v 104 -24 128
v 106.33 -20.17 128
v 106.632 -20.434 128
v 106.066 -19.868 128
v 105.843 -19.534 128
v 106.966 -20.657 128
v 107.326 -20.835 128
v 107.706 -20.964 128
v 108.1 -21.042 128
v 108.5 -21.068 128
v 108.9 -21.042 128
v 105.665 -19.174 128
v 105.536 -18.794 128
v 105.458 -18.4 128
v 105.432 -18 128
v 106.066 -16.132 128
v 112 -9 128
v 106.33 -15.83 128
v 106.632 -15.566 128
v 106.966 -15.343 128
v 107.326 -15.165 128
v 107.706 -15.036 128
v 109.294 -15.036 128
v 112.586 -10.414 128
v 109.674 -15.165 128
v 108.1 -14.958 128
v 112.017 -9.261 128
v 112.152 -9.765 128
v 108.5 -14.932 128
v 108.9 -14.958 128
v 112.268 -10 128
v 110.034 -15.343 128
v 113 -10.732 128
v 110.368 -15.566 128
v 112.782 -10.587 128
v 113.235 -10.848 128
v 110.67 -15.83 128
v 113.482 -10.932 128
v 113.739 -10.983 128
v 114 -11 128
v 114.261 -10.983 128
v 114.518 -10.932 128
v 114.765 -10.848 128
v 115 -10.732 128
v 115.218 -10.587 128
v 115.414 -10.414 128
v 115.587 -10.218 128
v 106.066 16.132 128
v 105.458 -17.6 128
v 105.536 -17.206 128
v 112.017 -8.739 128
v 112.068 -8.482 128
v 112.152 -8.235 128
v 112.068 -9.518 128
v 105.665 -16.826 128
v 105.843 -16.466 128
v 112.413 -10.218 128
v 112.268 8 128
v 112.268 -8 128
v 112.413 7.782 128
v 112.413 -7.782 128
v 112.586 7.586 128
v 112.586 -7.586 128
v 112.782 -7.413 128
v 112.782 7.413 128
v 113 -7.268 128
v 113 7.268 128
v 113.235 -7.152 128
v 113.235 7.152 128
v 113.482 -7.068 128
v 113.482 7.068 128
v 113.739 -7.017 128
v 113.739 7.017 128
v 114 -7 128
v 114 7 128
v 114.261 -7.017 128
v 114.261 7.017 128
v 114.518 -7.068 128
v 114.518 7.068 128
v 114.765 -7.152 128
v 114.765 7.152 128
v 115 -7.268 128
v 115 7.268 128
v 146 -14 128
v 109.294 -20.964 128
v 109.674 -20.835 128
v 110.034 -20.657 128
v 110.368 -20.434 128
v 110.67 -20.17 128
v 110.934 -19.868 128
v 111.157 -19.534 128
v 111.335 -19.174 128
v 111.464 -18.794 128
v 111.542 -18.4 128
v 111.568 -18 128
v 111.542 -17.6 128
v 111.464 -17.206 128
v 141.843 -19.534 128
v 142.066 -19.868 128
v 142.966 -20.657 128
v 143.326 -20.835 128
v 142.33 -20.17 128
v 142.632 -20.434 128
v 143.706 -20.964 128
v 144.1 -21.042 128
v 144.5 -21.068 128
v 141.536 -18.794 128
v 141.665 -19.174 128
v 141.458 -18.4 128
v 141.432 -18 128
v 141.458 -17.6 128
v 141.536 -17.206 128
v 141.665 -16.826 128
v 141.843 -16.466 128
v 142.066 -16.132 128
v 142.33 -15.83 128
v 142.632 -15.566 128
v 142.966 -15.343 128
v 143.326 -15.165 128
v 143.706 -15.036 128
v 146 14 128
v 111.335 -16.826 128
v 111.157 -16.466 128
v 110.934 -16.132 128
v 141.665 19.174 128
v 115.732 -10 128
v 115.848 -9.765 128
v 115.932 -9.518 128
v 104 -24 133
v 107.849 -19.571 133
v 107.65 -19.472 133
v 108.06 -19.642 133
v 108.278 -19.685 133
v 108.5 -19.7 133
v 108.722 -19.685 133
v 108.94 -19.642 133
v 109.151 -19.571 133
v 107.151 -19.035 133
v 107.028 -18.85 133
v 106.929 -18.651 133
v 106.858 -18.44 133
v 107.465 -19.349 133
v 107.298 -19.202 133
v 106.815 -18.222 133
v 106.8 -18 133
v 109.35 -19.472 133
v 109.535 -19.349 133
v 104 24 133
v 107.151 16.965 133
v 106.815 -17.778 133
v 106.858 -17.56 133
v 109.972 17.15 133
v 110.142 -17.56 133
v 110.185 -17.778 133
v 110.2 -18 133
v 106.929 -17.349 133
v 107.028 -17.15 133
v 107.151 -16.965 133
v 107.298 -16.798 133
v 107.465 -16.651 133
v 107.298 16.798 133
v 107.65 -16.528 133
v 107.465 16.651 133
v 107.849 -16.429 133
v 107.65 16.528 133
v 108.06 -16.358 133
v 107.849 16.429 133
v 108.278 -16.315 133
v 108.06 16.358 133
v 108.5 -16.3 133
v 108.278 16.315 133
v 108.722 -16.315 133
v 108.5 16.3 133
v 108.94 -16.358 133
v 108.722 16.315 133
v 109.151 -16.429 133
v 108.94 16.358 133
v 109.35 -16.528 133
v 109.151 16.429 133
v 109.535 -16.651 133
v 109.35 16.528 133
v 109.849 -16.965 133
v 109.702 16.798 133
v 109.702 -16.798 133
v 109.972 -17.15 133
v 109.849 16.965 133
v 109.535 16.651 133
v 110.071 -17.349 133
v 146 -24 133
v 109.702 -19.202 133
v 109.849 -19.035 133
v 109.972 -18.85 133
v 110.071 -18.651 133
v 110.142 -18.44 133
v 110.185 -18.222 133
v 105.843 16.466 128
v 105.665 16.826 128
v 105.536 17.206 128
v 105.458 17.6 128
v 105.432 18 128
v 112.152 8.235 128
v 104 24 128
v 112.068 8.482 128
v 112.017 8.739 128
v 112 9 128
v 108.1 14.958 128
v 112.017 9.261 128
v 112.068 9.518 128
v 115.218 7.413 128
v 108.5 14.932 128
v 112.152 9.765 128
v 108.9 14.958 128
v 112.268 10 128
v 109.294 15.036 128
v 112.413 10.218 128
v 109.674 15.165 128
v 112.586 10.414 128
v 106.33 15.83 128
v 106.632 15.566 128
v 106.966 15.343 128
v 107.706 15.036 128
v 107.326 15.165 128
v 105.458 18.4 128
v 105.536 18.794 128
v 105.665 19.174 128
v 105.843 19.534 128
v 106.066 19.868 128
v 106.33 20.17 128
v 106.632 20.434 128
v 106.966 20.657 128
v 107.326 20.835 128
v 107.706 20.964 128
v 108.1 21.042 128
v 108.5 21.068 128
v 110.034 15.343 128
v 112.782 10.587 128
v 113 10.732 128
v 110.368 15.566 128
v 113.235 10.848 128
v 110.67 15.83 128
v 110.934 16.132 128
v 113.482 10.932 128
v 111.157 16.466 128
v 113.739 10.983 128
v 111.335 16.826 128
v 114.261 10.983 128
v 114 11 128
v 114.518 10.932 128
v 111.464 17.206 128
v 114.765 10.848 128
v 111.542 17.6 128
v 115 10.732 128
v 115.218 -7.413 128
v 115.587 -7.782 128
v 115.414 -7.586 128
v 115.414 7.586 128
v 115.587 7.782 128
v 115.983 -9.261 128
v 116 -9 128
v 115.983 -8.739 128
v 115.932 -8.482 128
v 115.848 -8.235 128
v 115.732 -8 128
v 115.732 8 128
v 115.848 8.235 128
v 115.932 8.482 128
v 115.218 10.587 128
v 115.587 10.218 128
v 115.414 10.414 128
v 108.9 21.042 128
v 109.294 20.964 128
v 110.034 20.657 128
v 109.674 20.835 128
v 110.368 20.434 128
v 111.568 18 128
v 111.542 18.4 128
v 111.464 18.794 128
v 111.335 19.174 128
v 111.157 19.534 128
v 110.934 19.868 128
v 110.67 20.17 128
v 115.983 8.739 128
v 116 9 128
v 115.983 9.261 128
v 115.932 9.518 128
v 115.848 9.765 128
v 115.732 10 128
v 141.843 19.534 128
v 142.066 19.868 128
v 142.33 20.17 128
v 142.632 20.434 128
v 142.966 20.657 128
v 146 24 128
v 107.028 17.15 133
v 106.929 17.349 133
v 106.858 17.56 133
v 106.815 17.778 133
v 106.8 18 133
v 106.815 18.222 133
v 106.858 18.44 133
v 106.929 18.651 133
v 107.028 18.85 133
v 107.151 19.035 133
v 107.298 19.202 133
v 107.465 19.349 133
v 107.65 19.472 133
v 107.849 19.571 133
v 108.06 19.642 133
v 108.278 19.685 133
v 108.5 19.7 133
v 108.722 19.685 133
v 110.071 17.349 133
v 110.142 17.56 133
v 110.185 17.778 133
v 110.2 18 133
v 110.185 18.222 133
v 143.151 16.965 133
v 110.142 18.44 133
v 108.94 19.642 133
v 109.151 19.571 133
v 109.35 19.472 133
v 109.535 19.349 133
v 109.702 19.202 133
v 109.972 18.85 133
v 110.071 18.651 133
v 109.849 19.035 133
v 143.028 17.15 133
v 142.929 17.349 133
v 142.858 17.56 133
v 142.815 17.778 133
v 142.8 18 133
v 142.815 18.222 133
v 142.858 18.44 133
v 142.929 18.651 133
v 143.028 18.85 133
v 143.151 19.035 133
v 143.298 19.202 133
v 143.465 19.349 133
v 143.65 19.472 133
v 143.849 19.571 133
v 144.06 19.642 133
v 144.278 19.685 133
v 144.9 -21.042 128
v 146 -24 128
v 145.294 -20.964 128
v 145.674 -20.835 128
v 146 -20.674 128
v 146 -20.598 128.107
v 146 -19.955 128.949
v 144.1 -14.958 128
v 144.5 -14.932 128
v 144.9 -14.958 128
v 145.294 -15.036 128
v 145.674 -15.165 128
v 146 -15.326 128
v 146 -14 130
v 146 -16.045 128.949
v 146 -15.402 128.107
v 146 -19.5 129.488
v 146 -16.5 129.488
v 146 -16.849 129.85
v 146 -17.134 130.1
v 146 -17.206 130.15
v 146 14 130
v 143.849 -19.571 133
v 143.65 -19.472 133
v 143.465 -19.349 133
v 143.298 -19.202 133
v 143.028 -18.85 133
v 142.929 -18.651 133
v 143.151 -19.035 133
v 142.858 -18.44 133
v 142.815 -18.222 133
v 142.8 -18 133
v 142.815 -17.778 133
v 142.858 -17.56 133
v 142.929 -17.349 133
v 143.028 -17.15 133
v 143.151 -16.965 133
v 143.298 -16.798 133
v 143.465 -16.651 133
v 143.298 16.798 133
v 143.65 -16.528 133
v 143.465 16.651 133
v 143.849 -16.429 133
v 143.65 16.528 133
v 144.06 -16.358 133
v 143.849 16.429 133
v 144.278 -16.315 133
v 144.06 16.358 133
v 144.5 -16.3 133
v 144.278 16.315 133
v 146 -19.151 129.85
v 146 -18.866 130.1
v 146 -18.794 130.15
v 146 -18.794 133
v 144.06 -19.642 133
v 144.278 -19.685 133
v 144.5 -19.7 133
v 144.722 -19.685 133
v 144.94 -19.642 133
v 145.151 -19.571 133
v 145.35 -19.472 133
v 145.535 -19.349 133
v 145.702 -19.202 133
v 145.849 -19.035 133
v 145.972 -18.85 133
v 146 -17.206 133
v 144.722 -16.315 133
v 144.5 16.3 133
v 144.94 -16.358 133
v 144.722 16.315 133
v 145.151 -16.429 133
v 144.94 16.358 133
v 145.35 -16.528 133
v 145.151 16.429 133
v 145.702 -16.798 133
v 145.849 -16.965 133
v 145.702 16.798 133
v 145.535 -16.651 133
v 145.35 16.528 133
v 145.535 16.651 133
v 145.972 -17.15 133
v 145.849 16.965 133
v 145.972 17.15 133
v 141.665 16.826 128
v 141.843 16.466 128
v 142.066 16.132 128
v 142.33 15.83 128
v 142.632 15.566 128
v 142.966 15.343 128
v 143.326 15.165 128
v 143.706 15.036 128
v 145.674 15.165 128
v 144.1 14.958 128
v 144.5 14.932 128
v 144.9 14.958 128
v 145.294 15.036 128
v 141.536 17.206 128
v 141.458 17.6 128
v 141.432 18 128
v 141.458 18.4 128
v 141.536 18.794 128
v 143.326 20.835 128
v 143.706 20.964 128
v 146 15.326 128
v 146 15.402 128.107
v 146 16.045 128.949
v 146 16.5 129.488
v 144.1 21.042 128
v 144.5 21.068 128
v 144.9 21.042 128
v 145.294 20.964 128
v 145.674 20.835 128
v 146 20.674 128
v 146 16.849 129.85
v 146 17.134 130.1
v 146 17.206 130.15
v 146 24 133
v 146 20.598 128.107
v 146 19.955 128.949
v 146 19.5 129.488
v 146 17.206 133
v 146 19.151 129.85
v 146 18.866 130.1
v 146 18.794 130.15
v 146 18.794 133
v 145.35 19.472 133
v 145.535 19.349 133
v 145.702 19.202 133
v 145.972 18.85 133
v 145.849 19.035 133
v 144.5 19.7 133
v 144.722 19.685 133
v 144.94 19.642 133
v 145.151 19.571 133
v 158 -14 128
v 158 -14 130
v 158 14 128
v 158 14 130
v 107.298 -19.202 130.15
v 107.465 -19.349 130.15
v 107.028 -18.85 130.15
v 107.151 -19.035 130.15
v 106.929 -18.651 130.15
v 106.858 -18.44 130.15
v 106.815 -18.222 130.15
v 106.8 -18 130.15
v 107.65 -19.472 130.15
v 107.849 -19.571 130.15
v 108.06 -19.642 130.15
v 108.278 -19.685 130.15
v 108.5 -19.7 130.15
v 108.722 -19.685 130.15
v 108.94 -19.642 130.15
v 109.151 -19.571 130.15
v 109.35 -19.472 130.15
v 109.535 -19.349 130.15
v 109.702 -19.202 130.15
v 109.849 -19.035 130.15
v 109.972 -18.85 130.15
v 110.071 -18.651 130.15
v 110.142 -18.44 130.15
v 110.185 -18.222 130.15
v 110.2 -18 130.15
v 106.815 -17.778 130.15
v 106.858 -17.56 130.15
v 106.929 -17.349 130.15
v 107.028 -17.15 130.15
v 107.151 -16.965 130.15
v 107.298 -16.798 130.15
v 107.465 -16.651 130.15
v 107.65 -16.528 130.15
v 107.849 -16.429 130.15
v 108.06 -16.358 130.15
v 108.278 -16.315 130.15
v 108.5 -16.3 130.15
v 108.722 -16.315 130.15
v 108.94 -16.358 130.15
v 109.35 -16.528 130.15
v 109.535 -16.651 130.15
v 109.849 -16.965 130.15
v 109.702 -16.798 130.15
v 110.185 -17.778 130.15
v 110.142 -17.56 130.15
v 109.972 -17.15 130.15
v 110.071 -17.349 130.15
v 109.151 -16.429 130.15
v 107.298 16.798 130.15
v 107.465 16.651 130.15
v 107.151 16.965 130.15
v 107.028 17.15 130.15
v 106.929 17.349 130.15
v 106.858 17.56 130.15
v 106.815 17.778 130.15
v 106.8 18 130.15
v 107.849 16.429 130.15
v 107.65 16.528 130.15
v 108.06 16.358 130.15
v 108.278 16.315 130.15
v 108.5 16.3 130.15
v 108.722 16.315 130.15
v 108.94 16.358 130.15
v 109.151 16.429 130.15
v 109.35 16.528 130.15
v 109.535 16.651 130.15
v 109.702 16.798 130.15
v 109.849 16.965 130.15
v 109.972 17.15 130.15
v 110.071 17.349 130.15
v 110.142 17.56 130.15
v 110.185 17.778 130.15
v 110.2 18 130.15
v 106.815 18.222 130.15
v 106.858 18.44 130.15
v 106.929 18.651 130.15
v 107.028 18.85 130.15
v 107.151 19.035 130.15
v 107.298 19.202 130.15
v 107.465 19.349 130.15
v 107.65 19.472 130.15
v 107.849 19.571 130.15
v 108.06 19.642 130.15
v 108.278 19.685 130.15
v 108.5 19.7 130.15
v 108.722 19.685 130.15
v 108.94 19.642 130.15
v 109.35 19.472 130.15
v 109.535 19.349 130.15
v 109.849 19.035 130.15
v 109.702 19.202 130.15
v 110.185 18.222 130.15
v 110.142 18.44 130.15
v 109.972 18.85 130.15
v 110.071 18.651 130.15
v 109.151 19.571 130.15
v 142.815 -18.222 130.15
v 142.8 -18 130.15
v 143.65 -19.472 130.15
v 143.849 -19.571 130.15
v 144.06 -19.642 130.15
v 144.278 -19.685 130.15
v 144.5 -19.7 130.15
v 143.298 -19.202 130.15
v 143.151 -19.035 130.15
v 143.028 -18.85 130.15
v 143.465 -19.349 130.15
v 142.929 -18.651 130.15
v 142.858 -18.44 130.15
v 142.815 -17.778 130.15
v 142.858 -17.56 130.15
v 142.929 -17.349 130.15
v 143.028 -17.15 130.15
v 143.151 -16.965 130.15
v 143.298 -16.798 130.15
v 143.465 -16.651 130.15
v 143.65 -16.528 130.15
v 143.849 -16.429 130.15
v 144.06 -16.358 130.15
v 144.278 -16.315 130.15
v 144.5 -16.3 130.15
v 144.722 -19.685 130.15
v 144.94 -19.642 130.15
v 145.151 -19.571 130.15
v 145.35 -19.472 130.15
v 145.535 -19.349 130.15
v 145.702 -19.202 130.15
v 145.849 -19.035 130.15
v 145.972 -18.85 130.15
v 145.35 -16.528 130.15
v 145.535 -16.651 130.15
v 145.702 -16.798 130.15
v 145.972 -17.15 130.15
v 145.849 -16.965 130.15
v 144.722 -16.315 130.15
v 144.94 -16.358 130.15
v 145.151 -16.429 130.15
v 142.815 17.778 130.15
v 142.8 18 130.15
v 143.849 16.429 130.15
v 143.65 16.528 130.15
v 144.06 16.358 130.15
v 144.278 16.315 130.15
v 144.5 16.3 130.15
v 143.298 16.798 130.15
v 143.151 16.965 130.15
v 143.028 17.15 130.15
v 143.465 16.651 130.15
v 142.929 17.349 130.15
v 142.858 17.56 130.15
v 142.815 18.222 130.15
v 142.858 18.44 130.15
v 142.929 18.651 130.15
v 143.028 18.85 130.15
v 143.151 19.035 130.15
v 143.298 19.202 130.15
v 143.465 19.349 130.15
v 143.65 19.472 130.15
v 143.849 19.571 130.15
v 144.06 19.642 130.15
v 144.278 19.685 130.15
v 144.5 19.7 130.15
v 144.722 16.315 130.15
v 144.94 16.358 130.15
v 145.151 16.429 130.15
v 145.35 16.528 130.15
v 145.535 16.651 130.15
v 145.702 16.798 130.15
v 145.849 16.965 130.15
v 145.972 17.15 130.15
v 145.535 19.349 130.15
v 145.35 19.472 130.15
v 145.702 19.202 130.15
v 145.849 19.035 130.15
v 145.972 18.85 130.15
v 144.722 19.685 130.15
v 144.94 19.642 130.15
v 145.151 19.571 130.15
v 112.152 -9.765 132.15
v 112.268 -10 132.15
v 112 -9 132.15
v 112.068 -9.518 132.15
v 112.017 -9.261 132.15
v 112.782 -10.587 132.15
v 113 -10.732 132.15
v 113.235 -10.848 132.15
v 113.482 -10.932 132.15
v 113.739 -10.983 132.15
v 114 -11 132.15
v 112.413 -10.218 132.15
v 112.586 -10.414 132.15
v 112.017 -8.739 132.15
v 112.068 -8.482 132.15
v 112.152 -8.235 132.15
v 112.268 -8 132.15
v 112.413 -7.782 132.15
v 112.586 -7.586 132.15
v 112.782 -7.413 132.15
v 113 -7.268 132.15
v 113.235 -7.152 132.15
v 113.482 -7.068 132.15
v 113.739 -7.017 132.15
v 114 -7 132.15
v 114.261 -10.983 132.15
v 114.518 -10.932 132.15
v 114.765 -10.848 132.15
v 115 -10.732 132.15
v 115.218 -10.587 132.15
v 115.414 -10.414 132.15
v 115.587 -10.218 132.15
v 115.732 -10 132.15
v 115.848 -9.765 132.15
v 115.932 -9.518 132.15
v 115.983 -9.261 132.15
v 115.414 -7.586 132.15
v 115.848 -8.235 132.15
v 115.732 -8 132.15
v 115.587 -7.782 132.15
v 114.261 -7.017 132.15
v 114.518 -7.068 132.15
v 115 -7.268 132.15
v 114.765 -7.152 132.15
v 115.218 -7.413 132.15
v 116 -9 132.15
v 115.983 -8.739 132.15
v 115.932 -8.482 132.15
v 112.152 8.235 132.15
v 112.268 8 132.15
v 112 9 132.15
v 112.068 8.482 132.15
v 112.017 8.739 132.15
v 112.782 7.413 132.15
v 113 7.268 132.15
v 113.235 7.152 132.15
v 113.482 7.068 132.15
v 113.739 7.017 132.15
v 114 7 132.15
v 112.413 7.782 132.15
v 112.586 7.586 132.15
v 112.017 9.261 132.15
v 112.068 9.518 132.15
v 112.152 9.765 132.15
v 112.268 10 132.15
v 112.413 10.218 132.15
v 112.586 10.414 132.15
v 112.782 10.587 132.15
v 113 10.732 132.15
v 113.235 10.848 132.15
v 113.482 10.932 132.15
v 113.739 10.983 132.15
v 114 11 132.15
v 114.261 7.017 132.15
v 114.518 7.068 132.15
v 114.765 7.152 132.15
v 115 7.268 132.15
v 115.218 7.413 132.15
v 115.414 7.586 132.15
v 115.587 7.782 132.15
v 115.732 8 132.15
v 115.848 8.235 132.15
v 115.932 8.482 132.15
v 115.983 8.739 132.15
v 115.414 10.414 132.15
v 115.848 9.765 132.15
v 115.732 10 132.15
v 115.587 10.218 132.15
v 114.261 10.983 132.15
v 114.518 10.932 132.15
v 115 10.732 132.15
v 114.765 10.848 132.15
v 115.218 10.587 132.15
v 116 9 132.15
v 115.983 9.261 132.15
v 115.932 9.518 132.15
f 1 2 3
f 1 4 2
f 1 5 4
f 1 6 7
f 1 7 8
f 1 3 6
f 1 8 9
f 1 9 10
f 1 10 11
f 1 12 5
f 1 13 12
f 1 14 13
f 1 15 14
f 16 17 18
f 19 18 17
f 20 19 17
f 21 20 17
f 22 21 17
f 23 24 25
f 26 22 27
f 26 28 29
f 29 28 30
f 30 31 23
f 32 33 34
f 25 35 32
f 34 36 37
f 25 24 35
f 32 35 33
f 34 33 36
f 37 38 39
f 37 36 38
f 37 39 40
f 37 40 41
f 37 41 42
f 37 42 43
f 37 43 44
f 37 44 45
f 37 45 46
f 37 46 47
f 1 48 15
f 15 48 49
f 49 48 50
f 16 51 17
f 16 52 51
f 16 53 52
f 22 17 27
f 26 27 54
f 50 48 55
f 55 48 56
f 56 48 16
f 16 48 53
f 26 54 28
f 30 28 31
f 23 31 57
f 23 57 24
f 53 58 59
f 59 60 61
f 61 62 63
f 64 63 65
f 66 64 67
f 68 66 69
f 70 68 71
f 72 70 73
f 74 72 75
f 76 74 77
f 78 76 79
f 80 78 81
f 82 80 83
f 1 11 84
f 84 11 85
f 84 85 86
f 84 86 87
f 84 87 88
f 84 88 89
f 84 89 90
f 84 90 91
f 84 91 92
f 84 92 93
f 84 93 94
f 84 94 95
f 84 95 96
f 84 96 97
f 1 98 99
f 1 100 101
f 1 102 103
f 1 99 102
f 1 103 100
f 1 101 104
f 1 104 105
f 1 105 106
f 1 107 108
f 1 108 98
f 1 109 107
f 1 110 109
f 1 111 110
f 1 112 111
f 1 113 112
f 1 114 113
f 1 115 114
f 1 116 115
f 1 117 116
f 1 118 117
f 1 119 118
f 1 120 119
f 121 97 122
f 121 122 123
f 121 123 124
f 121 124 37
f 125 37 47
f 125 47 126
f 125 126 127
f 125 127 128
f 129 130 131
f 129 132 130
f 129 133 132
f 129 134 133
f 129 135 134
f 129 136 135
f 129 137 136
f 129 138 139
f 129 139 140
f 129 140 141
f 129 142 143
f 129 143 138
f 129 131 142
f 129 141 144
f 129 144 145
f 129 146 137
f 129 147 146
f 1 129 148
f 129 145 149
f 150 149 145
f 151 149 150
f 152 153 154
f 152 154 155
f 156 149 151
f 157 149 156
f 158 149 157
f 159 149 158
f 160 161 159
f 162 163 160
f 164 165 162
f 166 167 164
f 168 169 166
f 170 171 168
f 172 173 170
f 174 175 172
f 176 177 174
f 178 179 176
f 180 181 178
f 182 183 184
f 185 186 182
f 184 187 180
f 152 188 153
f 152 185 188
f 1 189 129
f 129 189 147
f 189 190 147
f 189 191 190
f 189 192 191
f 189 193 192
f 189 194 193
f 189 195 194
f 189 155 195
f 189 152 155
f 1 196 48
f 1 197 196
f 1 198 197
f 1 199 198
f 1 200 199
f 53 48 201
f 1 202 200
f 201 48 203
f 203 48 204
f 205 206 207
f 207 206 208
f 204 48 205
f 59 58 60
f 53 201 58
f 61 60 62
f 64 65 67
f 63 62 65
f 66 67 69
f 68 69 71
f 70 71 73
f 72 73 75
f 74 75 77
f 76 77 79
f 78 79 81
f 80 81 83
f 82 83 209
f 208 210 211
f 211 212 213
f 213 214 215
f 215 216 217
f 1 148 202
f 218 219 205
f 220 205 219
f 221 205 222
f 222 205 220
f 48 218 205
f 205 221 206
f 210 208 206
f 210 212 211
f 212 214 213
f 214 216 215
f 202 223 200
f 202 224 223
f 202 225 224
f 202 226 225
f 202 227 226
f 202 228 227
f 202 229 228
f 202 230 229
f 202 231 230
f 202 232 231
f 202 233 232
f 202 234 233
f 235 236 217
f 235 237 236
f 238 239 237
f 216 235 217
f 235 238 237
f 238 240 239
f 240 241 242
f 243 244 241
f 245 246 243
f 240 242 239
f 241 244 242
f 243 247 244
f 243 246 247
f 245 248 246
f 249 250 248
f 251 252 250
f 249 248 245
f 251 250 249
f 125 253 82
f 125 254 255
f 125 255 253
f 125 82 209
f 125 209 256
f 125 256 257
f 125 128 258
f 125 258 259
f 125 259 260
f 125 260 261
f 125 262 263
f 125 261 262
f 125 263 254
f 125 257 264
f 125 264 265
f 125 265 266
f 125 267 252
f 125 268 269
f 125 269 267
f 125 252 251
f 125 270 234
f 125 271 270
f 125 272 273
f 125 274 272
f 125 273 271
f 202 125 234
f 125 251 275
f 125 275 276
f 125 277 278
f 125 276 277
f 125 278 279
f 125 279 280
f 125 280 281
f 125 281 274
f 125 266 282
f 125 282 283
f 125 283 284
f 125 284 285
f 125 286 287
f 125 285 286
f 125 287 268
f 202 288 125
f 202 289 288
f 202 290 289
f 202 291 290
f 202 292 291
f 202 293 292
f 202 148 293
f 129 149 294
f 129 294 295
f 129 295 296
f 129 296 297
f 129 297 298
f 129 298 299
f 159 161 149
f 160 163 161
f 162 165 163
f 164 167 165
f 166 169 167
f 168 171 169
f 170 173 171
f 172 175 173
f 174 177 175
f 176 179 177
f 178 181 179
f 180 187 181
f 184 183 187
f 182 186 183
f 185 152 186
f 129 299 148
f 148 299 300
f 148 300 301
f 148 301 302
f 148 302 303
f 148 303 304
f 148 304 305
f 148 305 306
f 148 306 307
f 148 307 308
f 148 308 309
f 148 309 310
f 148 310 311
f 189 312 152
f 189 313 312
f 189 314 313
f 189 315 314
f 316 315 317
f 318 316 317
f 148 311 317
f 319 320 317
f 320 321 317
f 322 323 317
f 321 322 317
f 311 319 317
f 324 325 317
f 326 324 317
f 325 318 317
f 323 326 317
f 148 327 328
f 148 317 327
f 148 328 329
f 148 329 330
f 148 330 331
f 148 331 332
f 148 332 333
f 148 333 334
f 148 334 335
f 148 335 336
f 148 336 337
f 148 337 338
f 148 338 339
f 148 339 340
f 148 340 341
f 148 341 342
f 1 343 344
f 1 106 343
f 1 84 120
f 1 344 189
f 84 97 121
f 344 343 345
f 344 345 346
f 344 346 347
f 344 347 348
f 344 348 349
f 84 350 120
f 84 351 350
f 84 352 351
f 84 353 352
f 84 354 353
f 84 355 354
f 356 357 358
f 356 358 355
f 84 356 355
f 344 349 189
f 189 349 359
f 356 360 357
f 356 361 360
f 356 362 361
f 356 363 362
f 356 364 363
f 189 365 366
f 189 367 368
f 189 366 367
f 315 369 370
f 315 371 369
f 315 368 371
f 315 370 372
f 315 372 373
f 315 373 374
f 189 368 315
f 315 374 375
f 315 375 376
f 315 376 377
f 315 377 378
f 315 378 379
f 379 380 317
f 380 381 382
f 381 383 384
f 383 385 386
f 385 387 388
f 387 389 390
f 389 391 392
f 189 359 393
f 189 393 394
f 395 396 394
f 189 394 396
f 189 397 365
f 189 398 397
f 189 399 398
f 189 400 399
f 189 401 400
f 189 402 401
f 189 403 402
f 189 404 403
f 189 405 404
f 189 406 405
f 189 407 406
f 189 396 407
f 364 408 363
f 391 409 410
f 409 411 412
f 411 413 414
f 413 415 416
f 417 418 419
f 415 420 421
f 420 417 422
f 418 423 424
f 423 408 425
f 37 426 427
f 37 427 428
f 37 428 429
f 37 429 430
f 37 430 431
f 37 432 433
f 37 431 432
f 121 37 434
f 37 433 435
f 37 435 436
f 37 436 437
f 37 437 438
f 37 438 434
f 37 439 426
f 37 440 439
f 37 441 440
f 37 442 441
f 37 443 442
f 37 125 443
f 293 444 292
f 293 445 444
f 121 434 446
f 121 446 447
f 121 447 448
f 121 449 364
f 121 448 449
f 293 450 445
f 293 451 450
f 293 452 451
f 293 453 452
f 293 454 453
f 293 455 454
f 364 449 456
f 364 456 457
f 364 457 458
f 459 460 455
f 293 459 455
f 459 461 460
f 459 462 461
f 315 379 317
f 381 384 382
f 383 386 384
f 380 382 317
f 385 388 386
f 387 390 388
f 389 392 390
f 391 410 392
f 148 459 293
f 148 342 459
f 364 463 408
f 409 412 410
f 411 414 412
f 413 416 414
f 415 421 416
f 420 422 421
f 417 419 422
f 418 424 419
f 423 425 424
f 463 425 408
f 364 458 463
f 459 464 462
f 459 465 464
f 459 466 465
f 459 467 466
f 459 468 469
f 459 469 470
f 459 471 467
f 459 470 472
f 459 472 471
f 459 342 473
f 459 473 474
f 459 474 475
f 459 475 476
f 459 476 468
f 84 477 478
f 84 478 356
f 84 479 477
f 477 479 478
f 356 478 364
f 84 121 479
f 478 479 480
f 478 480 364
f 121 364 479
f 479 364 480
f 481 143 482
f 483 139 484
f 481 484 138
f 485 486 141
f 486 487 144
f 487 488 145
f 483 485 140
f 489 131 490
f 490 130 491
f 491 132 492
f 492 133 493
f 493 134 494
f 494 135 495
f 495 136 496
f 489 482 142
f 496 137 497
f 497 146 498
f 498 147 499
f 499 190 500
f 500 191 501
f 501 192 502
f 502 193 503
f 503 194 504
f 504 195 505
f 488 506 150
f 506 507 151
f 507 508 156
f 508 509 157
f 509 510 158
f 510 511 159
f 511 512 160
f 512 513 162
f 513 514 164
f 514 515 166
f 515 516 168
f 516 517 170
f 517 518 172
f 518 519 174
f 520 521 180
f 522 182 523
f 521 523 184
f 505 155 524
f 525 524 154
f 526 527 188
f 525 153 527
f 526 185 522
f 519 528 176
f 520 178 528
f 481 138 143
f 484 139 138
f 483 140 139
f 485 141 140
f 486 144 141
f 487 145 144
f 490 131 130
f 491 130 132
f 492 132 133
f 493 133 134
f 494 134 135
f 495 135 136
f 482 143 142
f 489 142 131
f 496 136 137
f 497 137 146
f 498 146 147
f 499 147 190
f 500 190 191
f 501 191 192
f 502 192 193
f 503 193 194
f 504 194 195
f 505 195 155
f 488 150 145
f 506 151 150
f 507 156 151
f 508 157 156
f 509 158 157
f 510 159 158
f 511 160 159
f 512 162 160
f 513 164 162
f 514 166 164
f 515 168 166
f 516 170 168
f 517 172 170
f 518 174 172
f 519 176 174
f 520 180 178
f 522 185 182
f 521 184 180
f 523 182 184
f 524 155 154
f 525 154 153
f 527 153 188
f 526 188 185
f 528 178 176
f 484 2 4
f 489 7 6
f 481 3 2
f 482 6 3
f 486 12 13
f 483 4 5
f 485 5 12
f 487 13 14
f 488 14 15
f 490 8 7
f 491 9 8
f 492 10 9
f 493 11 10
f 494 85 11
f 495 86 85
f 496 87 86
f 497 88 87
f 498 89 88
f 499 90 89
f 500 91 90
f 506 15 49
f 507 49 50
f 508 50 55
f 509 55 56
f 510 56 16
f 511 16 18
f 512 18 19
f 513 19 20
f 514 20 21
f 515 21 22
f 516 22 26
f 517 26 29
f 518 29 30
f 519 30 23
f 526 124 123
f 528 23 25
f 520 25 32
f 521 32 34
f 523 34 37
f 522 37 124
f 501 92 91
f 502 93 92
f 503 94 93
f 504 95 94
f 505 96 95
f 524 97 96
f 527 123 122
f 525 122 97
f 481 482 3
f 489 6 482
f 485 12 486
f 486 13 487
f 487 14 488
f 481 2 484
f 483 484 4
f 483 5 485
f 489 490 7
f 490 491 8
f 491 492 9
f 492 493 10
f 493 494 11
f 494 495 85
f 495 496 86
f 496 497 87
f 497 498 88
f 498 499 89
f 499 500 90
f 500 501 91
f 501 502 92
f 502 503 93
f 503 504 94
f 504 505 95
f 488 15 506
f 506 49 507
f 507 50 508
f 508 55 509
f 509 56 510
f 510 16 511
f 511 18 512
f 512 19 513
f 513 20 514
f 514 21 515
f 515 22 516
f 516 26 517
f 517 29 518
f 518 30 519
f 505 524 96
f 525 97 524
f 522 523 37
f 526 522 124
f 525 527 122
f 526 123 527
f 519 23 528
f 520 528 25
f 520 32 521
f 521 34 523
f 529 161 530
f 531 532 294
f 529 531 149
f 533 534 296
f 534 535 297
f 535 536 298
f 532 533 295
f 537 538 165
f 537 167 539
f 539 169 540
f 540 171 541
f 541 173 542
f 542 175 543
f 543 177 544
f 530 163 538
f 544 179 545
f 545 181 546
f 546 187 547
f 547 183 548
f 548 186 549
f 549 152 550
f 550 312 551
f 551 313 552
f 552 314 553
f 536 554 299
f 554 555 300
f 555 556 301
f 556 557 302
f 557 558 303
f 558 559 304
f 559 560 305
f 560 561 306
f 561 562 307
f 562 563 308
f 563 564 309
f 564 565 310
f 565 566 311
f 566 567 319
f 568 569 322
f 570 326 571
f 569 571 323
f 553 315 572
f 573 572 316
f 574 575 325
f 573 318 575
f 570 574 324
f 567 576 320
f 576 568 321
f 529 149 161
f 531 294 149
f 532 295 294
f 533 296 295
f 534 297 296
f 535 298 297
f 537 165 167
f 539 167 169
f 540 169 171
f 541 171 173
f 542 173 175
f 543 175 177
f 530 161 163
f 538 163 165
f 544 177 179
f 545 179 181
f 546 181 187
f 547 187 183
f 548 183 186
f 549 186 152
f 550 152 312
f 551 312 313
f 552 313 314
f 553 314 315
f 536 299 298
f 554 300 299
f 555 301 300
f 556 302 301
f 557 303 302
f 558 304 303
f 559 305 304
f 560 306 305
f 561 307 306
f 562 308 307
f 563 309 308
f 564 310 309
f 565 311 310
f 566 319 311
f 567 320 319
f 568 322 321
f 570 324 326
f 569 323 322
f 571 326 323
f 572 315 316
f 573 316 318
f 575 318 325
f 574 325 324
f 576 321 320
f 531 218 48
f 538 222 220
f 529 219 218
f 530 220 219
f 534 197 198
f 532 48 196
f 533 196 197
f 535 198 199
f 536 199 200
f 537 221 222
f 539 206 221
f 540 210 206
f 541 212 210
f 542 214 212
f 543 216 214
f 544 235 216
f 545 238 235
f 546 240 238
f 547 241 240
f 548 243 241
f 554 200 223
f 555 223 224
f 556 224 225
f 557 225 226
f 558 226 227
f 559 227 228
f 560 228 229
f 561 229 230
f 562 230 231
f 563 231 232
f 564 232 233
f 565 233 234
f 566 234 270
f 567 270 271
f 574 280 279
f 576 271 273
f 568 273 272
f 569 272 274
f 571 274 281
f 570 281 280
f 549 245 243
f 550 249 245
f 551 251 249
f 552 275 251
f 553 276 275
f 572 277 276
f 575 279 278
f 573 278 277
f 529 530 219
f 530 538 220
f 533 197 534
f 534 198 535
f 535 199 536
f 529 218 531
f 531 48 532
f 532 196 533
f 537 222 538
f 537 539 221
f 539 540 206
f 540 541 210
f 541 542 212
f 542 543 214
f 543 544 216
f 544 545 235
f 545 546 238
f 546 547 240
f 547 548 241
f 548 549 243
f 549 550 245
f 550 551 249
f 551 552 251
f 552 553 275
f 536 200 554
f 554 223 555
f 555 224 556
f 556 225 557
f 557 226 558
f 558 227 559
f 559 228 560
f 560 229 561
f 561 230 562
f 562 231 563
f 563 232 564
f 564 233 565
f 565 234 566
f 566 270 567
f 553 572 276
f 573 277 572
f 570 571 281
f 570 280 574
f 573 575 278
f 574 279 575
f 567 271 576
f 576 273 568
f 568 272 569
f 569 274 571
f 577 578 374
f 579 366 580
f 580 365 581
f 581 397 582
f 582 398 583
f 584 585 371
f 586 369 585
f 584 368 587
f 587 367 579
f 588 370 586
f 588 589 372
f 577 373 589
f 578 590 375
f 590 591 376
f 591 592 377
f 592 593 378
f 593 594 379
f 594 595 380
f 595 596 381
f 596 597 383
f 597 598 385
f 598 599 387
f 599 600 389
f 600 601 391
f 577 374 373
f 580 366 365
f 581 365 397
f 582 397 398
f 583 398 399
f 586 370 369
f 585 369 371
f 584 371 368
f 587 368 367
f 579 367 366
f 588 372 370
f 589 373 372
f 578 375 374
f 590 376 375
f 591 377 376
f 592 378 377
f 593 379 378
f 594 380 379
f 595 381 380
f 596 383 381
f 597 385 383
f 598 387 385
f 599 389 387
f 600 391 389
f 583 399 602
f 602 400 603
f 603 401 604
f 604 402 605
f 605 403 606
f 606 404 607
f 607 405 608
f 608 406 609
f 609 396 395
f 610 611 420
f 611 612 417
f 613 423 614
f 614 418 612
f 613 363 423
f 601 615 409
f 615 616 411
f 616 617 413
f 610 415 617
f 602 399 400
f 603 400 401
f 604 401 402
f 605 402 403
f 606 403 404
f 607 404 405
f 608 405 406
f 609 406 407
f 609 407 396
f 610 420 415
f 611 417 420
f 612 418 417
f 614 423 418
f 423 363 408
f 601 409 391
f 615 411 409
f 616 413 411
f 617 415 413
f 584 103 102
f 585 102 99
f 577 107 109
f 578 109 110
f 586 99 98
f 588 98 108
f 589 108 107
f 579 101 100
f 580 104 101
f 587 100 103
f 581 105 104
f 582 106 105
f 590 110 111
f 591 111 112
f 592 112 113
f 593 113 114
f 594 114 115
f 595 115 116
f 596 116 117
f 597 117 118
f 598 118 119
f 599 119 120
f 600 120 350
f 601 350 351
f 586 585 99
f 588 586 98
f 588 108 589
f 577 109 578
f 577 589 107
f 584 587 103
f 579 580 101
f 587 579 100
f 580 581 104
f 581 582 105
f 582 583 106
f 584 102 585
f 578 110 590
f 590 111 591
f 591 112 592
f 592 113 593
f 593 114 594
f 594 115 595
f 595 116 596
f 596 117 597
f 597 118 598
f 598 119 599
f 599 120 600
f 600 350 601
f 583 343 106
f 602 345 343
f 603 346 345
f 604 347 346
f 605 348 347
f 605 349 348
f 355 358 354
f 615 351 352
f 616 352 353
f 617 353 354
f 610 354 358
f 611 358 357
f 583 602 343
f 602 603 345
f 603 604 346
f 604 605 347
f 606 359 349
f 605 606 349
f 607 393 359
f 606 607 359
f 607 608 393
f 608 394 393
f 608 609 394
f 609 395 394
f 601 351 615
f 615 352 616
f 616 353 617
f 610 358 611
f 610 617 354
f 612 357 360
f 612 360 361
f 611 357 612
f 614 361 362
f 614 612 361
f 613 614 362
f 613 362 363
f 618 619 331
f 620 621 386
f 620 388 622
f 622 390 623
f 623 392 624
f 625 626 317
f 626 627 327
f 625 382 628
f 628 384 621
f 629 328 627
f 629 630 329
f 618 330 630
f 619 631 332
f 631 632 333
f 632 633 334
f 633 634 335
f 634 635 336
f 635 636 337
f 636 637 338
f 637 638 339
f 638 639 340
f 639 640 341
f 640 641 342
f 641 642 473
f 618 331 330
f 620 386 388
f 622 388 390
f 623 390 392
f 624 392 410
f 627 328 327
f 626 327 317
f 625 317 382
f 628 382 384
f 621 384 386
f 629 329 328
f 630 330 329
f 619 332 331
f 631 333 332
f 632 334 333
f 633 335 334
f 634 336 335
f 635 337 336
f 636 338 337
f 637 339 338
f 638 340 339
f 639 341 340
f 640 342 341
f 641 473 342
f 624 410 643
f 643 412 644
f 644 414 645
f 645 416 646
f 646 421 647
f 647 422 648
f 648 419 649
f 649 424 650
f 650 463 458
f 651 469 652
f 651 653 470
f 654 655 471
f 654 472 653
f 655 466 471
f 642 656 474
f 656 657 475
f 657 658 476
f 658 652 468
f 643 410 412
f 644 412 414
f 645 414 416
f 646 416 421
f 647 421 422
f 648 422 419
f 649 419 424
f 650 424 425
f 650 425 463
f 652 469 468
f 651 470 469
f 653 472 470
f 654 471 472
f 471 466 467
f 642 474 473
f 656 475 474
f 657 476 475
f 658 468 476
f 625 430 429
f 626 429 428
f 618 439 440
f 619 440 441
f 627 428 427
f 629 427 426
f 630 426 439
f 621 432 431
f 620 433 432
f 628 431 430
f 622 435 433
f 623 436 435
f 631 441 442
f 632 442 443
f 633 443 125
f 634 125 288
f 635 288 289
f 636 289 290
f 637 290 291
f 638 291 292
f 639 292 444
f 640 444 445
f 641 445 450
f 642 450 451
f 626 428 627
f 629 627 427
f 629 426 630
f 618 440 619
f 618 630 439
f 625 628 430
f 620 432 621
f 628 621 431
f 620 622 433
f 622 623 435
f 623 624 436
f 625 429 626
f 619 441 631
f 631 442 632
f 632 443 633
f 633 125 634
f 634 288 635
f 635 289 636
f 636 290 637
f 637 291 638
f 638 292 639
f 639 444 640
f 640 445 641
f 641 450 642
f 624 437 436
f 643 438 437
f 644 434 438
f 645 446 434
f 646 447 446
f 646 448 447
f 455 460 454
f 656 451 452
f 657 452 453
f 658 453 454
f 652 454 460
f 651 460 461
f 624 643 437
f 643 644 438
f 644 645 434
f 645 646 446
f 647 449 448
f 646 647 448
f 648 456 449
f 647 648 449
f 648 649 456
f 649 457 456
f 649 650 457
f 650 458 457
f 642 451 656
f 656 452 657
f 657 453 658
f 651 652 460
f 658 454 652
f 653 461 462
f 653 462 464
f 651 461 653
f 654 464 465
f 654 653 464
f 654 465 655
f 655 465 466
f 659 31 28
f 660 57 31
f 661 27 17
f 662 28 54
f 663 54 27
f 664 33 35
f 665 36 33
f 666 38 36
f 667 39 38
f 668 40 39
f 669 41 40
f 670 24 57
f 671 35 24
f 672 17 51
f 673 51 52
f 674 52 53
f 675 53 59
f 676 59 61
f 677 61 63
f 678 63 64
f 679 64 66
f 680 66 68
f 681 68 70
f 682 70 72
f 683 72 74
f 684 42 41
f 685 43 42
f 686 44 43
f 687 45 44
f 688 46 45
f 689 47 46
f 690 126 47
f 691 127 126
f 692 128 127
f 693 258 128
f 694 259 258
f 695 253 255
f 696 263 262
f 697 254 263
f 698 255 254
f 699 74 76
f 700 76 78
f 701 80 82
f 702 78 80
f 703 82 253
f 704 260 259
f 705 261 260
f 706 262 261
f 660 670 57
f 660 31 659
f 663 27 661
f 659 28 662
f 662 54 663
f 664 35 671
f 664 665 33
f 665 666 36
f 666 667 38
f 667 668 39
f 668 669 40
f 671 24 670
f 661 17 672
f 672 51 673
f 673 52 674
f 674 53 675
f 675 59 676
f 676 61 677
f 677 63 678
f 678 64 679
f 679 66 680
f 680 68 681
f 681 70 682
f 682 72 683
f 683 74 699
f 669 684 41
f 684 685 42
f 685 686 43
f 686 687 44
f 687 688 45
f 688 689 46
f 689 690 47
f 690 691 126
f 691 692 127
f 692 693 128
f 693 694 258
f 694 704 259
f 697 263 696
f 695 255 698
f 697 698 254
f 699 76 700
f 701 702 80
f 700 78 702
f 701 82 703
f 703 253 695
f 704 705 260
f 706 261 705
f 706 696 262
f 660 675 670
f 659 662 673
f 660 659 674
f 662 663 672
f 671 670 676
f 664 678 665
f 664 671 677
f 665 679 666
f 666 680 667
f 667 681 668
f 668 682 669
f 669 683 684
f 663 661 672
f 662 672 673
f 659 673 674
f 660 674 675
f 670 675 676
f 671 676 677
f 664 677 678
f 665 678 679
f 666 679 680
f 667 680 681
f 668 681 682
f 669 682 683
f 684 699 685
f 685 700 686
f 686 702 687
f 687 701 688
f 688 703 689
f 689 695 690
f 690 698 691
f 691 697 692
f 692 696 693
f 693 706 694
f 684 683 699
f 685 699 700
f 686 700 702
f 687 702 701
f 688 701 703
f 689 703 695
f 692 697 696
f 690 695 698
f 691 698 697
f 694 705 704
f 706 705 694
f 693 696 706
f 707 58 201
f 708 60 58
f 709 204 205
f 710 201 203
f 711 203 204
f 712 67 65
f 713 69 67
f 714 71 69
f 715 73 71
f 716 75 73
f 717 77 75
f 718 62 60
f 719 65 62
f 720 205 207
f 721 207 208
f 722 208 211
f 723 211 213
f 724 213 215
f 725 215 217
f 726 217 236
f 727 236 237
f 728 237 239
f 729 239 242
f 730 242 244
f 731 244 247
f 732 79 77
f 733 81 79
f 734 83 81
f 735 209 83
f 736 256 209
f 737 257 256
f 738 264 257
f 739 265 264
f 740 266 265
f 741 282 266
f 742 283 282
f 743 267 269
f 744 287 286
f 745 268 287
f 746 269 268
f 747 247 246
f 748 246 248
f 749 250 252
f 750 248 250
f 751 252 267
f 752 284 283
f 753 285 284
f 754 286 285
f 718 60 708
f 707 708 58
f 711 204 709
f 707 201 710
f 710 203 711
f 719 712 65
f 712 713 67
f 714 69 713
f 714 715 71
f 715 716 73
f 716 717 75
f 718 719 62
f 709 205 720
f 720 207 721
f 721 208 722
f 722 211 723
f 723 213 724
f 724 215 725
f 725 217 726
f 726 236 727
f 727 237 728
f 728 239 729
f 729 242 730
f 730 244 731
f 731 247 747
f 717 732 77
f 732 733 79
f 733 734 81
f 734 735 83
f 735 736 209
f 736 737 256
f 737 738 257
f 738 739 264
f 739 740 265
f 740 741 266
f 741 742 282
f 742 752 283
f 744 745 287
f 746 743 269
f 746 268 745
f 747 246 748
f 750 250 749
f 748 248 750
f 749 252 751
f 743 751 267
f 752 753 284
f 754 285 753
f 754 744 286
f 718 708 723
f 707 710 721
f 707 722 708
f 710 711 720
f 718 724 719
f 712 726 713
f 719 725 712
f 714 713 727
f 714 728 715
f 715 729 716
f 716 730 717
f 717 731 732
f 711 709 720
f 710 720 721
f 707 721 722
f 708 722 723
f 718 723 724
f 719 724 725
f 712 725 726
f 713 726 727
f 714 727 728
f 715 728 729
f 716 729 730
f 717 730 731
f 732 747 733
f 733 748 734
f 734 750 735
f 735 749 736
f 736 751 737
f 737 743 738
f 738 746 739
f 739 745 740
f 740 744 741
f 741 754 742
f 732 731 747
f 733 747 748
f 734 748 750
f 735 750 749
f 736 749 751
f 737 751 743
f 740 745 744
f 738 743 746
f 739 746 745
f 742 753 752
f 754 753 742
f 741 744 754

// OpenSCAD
// =============================================================================
// L2 ADAPTER PLATE — accessible mount for the Unitree L2 (access audit 2026-07-08)
// =============================================================================
// The L2's Ø51 (R25.5) 4-hole base pattern doesn't match the head crown, and 2
// of the 4 bolts are UNREACHABLE on the assembled head (the head's front
// structure sits directly under them). This plate fixes it:
//   1. the L2 bolts to THIS plate ON THE BENCH — all 4 accessible (M3 up from
//      below, heads countersunk flush into the plate bottom).
//   2. the plate (with the L2 on it) drops onto the crown: a FRONT TONGUE slides
//      under a crown lip + 2 REAR bolts from BELOW the crown into the plate's
//      heat-sets (both reachable). No front bolt needed.
// Decouples the sensor pattern from the head; L2 stays field-swappable.
//
// Frame: head/world (trunk mm). Sits on the crown top (z128), 5 mm thick
//   (z128..133); the L2 base then sits at z133 (optical ~z165, still fine).
// PRINT: PA6-CF or PETG-CF, FLAT (bottom on the bed), ~6 g. print 1.

$fn = 48; EPS = 0.05; M3_CLEAR = 3.4;
Z0  = 128;  T = 5;                 // adapter on the crown top z128, 5 thick
CTR = 126.5; L2_BCD = 18;          // L2 Ø51 pattern at 45° -> holes at ±18

module l2_adapter() {
    difference() {
        union() {
            translate([104, -24, Z0]) cube([42, 48, T]);       // main plate x104..146
            translate([146, -14, Z0]) cube([12, 28, 2]);        // front tongue x146..158, 2 thin
                                                                // (starts at x146 = crown-lip start so the
                                                                //  lip only ever hooks the THIN tongue, never
                                                                //  the 5mm main plate — clash fix 2026-07-08)
        }
        // 4x L2 bolts: CSK from the BOTTOM (heads flush), M3 up into the L2 base
        for (sx = [-1, 1], sy = [-1, 1]) {
            translate([CTR + sx * L2_BCD, sy * L2_BCD, Z0 - EPS])
                cylinder(d = M3_CLEAR, h = T + 2 * EPS);
            translate([CTR + sx * L2_BCD, sy * L2_BCD, Z0 - EPS])
                cylinder(d1 = 6.2, d2 = M3_CLEAR, h = 2.2);      // countersink
        }
        // 2x REAR crown-mount heat-sets (from the plate BOTTOM z128, +z 4mm).
        // The bolt comes UP from below the crown into these. SHORT M3 insert
        // (Ruthex M3x3.8, bore 4.0) — the plate is only 5mm + the L2 sits on top
        // (can't boss upward), so a full 5.7 insert won't fit. At (114,±9): clears
        // the L2 CSK at (108.5,±18) by 10.5mm (was 110,±14 = 4.3, too close).
        // fastener audit 2026-07-08.
        for (sy = [-1, 1])
            translate([114, sy * 9, Z0 - EPS]) cylinder(d = 4.0, h = 4.2);
    }
}

l2_adapter();
